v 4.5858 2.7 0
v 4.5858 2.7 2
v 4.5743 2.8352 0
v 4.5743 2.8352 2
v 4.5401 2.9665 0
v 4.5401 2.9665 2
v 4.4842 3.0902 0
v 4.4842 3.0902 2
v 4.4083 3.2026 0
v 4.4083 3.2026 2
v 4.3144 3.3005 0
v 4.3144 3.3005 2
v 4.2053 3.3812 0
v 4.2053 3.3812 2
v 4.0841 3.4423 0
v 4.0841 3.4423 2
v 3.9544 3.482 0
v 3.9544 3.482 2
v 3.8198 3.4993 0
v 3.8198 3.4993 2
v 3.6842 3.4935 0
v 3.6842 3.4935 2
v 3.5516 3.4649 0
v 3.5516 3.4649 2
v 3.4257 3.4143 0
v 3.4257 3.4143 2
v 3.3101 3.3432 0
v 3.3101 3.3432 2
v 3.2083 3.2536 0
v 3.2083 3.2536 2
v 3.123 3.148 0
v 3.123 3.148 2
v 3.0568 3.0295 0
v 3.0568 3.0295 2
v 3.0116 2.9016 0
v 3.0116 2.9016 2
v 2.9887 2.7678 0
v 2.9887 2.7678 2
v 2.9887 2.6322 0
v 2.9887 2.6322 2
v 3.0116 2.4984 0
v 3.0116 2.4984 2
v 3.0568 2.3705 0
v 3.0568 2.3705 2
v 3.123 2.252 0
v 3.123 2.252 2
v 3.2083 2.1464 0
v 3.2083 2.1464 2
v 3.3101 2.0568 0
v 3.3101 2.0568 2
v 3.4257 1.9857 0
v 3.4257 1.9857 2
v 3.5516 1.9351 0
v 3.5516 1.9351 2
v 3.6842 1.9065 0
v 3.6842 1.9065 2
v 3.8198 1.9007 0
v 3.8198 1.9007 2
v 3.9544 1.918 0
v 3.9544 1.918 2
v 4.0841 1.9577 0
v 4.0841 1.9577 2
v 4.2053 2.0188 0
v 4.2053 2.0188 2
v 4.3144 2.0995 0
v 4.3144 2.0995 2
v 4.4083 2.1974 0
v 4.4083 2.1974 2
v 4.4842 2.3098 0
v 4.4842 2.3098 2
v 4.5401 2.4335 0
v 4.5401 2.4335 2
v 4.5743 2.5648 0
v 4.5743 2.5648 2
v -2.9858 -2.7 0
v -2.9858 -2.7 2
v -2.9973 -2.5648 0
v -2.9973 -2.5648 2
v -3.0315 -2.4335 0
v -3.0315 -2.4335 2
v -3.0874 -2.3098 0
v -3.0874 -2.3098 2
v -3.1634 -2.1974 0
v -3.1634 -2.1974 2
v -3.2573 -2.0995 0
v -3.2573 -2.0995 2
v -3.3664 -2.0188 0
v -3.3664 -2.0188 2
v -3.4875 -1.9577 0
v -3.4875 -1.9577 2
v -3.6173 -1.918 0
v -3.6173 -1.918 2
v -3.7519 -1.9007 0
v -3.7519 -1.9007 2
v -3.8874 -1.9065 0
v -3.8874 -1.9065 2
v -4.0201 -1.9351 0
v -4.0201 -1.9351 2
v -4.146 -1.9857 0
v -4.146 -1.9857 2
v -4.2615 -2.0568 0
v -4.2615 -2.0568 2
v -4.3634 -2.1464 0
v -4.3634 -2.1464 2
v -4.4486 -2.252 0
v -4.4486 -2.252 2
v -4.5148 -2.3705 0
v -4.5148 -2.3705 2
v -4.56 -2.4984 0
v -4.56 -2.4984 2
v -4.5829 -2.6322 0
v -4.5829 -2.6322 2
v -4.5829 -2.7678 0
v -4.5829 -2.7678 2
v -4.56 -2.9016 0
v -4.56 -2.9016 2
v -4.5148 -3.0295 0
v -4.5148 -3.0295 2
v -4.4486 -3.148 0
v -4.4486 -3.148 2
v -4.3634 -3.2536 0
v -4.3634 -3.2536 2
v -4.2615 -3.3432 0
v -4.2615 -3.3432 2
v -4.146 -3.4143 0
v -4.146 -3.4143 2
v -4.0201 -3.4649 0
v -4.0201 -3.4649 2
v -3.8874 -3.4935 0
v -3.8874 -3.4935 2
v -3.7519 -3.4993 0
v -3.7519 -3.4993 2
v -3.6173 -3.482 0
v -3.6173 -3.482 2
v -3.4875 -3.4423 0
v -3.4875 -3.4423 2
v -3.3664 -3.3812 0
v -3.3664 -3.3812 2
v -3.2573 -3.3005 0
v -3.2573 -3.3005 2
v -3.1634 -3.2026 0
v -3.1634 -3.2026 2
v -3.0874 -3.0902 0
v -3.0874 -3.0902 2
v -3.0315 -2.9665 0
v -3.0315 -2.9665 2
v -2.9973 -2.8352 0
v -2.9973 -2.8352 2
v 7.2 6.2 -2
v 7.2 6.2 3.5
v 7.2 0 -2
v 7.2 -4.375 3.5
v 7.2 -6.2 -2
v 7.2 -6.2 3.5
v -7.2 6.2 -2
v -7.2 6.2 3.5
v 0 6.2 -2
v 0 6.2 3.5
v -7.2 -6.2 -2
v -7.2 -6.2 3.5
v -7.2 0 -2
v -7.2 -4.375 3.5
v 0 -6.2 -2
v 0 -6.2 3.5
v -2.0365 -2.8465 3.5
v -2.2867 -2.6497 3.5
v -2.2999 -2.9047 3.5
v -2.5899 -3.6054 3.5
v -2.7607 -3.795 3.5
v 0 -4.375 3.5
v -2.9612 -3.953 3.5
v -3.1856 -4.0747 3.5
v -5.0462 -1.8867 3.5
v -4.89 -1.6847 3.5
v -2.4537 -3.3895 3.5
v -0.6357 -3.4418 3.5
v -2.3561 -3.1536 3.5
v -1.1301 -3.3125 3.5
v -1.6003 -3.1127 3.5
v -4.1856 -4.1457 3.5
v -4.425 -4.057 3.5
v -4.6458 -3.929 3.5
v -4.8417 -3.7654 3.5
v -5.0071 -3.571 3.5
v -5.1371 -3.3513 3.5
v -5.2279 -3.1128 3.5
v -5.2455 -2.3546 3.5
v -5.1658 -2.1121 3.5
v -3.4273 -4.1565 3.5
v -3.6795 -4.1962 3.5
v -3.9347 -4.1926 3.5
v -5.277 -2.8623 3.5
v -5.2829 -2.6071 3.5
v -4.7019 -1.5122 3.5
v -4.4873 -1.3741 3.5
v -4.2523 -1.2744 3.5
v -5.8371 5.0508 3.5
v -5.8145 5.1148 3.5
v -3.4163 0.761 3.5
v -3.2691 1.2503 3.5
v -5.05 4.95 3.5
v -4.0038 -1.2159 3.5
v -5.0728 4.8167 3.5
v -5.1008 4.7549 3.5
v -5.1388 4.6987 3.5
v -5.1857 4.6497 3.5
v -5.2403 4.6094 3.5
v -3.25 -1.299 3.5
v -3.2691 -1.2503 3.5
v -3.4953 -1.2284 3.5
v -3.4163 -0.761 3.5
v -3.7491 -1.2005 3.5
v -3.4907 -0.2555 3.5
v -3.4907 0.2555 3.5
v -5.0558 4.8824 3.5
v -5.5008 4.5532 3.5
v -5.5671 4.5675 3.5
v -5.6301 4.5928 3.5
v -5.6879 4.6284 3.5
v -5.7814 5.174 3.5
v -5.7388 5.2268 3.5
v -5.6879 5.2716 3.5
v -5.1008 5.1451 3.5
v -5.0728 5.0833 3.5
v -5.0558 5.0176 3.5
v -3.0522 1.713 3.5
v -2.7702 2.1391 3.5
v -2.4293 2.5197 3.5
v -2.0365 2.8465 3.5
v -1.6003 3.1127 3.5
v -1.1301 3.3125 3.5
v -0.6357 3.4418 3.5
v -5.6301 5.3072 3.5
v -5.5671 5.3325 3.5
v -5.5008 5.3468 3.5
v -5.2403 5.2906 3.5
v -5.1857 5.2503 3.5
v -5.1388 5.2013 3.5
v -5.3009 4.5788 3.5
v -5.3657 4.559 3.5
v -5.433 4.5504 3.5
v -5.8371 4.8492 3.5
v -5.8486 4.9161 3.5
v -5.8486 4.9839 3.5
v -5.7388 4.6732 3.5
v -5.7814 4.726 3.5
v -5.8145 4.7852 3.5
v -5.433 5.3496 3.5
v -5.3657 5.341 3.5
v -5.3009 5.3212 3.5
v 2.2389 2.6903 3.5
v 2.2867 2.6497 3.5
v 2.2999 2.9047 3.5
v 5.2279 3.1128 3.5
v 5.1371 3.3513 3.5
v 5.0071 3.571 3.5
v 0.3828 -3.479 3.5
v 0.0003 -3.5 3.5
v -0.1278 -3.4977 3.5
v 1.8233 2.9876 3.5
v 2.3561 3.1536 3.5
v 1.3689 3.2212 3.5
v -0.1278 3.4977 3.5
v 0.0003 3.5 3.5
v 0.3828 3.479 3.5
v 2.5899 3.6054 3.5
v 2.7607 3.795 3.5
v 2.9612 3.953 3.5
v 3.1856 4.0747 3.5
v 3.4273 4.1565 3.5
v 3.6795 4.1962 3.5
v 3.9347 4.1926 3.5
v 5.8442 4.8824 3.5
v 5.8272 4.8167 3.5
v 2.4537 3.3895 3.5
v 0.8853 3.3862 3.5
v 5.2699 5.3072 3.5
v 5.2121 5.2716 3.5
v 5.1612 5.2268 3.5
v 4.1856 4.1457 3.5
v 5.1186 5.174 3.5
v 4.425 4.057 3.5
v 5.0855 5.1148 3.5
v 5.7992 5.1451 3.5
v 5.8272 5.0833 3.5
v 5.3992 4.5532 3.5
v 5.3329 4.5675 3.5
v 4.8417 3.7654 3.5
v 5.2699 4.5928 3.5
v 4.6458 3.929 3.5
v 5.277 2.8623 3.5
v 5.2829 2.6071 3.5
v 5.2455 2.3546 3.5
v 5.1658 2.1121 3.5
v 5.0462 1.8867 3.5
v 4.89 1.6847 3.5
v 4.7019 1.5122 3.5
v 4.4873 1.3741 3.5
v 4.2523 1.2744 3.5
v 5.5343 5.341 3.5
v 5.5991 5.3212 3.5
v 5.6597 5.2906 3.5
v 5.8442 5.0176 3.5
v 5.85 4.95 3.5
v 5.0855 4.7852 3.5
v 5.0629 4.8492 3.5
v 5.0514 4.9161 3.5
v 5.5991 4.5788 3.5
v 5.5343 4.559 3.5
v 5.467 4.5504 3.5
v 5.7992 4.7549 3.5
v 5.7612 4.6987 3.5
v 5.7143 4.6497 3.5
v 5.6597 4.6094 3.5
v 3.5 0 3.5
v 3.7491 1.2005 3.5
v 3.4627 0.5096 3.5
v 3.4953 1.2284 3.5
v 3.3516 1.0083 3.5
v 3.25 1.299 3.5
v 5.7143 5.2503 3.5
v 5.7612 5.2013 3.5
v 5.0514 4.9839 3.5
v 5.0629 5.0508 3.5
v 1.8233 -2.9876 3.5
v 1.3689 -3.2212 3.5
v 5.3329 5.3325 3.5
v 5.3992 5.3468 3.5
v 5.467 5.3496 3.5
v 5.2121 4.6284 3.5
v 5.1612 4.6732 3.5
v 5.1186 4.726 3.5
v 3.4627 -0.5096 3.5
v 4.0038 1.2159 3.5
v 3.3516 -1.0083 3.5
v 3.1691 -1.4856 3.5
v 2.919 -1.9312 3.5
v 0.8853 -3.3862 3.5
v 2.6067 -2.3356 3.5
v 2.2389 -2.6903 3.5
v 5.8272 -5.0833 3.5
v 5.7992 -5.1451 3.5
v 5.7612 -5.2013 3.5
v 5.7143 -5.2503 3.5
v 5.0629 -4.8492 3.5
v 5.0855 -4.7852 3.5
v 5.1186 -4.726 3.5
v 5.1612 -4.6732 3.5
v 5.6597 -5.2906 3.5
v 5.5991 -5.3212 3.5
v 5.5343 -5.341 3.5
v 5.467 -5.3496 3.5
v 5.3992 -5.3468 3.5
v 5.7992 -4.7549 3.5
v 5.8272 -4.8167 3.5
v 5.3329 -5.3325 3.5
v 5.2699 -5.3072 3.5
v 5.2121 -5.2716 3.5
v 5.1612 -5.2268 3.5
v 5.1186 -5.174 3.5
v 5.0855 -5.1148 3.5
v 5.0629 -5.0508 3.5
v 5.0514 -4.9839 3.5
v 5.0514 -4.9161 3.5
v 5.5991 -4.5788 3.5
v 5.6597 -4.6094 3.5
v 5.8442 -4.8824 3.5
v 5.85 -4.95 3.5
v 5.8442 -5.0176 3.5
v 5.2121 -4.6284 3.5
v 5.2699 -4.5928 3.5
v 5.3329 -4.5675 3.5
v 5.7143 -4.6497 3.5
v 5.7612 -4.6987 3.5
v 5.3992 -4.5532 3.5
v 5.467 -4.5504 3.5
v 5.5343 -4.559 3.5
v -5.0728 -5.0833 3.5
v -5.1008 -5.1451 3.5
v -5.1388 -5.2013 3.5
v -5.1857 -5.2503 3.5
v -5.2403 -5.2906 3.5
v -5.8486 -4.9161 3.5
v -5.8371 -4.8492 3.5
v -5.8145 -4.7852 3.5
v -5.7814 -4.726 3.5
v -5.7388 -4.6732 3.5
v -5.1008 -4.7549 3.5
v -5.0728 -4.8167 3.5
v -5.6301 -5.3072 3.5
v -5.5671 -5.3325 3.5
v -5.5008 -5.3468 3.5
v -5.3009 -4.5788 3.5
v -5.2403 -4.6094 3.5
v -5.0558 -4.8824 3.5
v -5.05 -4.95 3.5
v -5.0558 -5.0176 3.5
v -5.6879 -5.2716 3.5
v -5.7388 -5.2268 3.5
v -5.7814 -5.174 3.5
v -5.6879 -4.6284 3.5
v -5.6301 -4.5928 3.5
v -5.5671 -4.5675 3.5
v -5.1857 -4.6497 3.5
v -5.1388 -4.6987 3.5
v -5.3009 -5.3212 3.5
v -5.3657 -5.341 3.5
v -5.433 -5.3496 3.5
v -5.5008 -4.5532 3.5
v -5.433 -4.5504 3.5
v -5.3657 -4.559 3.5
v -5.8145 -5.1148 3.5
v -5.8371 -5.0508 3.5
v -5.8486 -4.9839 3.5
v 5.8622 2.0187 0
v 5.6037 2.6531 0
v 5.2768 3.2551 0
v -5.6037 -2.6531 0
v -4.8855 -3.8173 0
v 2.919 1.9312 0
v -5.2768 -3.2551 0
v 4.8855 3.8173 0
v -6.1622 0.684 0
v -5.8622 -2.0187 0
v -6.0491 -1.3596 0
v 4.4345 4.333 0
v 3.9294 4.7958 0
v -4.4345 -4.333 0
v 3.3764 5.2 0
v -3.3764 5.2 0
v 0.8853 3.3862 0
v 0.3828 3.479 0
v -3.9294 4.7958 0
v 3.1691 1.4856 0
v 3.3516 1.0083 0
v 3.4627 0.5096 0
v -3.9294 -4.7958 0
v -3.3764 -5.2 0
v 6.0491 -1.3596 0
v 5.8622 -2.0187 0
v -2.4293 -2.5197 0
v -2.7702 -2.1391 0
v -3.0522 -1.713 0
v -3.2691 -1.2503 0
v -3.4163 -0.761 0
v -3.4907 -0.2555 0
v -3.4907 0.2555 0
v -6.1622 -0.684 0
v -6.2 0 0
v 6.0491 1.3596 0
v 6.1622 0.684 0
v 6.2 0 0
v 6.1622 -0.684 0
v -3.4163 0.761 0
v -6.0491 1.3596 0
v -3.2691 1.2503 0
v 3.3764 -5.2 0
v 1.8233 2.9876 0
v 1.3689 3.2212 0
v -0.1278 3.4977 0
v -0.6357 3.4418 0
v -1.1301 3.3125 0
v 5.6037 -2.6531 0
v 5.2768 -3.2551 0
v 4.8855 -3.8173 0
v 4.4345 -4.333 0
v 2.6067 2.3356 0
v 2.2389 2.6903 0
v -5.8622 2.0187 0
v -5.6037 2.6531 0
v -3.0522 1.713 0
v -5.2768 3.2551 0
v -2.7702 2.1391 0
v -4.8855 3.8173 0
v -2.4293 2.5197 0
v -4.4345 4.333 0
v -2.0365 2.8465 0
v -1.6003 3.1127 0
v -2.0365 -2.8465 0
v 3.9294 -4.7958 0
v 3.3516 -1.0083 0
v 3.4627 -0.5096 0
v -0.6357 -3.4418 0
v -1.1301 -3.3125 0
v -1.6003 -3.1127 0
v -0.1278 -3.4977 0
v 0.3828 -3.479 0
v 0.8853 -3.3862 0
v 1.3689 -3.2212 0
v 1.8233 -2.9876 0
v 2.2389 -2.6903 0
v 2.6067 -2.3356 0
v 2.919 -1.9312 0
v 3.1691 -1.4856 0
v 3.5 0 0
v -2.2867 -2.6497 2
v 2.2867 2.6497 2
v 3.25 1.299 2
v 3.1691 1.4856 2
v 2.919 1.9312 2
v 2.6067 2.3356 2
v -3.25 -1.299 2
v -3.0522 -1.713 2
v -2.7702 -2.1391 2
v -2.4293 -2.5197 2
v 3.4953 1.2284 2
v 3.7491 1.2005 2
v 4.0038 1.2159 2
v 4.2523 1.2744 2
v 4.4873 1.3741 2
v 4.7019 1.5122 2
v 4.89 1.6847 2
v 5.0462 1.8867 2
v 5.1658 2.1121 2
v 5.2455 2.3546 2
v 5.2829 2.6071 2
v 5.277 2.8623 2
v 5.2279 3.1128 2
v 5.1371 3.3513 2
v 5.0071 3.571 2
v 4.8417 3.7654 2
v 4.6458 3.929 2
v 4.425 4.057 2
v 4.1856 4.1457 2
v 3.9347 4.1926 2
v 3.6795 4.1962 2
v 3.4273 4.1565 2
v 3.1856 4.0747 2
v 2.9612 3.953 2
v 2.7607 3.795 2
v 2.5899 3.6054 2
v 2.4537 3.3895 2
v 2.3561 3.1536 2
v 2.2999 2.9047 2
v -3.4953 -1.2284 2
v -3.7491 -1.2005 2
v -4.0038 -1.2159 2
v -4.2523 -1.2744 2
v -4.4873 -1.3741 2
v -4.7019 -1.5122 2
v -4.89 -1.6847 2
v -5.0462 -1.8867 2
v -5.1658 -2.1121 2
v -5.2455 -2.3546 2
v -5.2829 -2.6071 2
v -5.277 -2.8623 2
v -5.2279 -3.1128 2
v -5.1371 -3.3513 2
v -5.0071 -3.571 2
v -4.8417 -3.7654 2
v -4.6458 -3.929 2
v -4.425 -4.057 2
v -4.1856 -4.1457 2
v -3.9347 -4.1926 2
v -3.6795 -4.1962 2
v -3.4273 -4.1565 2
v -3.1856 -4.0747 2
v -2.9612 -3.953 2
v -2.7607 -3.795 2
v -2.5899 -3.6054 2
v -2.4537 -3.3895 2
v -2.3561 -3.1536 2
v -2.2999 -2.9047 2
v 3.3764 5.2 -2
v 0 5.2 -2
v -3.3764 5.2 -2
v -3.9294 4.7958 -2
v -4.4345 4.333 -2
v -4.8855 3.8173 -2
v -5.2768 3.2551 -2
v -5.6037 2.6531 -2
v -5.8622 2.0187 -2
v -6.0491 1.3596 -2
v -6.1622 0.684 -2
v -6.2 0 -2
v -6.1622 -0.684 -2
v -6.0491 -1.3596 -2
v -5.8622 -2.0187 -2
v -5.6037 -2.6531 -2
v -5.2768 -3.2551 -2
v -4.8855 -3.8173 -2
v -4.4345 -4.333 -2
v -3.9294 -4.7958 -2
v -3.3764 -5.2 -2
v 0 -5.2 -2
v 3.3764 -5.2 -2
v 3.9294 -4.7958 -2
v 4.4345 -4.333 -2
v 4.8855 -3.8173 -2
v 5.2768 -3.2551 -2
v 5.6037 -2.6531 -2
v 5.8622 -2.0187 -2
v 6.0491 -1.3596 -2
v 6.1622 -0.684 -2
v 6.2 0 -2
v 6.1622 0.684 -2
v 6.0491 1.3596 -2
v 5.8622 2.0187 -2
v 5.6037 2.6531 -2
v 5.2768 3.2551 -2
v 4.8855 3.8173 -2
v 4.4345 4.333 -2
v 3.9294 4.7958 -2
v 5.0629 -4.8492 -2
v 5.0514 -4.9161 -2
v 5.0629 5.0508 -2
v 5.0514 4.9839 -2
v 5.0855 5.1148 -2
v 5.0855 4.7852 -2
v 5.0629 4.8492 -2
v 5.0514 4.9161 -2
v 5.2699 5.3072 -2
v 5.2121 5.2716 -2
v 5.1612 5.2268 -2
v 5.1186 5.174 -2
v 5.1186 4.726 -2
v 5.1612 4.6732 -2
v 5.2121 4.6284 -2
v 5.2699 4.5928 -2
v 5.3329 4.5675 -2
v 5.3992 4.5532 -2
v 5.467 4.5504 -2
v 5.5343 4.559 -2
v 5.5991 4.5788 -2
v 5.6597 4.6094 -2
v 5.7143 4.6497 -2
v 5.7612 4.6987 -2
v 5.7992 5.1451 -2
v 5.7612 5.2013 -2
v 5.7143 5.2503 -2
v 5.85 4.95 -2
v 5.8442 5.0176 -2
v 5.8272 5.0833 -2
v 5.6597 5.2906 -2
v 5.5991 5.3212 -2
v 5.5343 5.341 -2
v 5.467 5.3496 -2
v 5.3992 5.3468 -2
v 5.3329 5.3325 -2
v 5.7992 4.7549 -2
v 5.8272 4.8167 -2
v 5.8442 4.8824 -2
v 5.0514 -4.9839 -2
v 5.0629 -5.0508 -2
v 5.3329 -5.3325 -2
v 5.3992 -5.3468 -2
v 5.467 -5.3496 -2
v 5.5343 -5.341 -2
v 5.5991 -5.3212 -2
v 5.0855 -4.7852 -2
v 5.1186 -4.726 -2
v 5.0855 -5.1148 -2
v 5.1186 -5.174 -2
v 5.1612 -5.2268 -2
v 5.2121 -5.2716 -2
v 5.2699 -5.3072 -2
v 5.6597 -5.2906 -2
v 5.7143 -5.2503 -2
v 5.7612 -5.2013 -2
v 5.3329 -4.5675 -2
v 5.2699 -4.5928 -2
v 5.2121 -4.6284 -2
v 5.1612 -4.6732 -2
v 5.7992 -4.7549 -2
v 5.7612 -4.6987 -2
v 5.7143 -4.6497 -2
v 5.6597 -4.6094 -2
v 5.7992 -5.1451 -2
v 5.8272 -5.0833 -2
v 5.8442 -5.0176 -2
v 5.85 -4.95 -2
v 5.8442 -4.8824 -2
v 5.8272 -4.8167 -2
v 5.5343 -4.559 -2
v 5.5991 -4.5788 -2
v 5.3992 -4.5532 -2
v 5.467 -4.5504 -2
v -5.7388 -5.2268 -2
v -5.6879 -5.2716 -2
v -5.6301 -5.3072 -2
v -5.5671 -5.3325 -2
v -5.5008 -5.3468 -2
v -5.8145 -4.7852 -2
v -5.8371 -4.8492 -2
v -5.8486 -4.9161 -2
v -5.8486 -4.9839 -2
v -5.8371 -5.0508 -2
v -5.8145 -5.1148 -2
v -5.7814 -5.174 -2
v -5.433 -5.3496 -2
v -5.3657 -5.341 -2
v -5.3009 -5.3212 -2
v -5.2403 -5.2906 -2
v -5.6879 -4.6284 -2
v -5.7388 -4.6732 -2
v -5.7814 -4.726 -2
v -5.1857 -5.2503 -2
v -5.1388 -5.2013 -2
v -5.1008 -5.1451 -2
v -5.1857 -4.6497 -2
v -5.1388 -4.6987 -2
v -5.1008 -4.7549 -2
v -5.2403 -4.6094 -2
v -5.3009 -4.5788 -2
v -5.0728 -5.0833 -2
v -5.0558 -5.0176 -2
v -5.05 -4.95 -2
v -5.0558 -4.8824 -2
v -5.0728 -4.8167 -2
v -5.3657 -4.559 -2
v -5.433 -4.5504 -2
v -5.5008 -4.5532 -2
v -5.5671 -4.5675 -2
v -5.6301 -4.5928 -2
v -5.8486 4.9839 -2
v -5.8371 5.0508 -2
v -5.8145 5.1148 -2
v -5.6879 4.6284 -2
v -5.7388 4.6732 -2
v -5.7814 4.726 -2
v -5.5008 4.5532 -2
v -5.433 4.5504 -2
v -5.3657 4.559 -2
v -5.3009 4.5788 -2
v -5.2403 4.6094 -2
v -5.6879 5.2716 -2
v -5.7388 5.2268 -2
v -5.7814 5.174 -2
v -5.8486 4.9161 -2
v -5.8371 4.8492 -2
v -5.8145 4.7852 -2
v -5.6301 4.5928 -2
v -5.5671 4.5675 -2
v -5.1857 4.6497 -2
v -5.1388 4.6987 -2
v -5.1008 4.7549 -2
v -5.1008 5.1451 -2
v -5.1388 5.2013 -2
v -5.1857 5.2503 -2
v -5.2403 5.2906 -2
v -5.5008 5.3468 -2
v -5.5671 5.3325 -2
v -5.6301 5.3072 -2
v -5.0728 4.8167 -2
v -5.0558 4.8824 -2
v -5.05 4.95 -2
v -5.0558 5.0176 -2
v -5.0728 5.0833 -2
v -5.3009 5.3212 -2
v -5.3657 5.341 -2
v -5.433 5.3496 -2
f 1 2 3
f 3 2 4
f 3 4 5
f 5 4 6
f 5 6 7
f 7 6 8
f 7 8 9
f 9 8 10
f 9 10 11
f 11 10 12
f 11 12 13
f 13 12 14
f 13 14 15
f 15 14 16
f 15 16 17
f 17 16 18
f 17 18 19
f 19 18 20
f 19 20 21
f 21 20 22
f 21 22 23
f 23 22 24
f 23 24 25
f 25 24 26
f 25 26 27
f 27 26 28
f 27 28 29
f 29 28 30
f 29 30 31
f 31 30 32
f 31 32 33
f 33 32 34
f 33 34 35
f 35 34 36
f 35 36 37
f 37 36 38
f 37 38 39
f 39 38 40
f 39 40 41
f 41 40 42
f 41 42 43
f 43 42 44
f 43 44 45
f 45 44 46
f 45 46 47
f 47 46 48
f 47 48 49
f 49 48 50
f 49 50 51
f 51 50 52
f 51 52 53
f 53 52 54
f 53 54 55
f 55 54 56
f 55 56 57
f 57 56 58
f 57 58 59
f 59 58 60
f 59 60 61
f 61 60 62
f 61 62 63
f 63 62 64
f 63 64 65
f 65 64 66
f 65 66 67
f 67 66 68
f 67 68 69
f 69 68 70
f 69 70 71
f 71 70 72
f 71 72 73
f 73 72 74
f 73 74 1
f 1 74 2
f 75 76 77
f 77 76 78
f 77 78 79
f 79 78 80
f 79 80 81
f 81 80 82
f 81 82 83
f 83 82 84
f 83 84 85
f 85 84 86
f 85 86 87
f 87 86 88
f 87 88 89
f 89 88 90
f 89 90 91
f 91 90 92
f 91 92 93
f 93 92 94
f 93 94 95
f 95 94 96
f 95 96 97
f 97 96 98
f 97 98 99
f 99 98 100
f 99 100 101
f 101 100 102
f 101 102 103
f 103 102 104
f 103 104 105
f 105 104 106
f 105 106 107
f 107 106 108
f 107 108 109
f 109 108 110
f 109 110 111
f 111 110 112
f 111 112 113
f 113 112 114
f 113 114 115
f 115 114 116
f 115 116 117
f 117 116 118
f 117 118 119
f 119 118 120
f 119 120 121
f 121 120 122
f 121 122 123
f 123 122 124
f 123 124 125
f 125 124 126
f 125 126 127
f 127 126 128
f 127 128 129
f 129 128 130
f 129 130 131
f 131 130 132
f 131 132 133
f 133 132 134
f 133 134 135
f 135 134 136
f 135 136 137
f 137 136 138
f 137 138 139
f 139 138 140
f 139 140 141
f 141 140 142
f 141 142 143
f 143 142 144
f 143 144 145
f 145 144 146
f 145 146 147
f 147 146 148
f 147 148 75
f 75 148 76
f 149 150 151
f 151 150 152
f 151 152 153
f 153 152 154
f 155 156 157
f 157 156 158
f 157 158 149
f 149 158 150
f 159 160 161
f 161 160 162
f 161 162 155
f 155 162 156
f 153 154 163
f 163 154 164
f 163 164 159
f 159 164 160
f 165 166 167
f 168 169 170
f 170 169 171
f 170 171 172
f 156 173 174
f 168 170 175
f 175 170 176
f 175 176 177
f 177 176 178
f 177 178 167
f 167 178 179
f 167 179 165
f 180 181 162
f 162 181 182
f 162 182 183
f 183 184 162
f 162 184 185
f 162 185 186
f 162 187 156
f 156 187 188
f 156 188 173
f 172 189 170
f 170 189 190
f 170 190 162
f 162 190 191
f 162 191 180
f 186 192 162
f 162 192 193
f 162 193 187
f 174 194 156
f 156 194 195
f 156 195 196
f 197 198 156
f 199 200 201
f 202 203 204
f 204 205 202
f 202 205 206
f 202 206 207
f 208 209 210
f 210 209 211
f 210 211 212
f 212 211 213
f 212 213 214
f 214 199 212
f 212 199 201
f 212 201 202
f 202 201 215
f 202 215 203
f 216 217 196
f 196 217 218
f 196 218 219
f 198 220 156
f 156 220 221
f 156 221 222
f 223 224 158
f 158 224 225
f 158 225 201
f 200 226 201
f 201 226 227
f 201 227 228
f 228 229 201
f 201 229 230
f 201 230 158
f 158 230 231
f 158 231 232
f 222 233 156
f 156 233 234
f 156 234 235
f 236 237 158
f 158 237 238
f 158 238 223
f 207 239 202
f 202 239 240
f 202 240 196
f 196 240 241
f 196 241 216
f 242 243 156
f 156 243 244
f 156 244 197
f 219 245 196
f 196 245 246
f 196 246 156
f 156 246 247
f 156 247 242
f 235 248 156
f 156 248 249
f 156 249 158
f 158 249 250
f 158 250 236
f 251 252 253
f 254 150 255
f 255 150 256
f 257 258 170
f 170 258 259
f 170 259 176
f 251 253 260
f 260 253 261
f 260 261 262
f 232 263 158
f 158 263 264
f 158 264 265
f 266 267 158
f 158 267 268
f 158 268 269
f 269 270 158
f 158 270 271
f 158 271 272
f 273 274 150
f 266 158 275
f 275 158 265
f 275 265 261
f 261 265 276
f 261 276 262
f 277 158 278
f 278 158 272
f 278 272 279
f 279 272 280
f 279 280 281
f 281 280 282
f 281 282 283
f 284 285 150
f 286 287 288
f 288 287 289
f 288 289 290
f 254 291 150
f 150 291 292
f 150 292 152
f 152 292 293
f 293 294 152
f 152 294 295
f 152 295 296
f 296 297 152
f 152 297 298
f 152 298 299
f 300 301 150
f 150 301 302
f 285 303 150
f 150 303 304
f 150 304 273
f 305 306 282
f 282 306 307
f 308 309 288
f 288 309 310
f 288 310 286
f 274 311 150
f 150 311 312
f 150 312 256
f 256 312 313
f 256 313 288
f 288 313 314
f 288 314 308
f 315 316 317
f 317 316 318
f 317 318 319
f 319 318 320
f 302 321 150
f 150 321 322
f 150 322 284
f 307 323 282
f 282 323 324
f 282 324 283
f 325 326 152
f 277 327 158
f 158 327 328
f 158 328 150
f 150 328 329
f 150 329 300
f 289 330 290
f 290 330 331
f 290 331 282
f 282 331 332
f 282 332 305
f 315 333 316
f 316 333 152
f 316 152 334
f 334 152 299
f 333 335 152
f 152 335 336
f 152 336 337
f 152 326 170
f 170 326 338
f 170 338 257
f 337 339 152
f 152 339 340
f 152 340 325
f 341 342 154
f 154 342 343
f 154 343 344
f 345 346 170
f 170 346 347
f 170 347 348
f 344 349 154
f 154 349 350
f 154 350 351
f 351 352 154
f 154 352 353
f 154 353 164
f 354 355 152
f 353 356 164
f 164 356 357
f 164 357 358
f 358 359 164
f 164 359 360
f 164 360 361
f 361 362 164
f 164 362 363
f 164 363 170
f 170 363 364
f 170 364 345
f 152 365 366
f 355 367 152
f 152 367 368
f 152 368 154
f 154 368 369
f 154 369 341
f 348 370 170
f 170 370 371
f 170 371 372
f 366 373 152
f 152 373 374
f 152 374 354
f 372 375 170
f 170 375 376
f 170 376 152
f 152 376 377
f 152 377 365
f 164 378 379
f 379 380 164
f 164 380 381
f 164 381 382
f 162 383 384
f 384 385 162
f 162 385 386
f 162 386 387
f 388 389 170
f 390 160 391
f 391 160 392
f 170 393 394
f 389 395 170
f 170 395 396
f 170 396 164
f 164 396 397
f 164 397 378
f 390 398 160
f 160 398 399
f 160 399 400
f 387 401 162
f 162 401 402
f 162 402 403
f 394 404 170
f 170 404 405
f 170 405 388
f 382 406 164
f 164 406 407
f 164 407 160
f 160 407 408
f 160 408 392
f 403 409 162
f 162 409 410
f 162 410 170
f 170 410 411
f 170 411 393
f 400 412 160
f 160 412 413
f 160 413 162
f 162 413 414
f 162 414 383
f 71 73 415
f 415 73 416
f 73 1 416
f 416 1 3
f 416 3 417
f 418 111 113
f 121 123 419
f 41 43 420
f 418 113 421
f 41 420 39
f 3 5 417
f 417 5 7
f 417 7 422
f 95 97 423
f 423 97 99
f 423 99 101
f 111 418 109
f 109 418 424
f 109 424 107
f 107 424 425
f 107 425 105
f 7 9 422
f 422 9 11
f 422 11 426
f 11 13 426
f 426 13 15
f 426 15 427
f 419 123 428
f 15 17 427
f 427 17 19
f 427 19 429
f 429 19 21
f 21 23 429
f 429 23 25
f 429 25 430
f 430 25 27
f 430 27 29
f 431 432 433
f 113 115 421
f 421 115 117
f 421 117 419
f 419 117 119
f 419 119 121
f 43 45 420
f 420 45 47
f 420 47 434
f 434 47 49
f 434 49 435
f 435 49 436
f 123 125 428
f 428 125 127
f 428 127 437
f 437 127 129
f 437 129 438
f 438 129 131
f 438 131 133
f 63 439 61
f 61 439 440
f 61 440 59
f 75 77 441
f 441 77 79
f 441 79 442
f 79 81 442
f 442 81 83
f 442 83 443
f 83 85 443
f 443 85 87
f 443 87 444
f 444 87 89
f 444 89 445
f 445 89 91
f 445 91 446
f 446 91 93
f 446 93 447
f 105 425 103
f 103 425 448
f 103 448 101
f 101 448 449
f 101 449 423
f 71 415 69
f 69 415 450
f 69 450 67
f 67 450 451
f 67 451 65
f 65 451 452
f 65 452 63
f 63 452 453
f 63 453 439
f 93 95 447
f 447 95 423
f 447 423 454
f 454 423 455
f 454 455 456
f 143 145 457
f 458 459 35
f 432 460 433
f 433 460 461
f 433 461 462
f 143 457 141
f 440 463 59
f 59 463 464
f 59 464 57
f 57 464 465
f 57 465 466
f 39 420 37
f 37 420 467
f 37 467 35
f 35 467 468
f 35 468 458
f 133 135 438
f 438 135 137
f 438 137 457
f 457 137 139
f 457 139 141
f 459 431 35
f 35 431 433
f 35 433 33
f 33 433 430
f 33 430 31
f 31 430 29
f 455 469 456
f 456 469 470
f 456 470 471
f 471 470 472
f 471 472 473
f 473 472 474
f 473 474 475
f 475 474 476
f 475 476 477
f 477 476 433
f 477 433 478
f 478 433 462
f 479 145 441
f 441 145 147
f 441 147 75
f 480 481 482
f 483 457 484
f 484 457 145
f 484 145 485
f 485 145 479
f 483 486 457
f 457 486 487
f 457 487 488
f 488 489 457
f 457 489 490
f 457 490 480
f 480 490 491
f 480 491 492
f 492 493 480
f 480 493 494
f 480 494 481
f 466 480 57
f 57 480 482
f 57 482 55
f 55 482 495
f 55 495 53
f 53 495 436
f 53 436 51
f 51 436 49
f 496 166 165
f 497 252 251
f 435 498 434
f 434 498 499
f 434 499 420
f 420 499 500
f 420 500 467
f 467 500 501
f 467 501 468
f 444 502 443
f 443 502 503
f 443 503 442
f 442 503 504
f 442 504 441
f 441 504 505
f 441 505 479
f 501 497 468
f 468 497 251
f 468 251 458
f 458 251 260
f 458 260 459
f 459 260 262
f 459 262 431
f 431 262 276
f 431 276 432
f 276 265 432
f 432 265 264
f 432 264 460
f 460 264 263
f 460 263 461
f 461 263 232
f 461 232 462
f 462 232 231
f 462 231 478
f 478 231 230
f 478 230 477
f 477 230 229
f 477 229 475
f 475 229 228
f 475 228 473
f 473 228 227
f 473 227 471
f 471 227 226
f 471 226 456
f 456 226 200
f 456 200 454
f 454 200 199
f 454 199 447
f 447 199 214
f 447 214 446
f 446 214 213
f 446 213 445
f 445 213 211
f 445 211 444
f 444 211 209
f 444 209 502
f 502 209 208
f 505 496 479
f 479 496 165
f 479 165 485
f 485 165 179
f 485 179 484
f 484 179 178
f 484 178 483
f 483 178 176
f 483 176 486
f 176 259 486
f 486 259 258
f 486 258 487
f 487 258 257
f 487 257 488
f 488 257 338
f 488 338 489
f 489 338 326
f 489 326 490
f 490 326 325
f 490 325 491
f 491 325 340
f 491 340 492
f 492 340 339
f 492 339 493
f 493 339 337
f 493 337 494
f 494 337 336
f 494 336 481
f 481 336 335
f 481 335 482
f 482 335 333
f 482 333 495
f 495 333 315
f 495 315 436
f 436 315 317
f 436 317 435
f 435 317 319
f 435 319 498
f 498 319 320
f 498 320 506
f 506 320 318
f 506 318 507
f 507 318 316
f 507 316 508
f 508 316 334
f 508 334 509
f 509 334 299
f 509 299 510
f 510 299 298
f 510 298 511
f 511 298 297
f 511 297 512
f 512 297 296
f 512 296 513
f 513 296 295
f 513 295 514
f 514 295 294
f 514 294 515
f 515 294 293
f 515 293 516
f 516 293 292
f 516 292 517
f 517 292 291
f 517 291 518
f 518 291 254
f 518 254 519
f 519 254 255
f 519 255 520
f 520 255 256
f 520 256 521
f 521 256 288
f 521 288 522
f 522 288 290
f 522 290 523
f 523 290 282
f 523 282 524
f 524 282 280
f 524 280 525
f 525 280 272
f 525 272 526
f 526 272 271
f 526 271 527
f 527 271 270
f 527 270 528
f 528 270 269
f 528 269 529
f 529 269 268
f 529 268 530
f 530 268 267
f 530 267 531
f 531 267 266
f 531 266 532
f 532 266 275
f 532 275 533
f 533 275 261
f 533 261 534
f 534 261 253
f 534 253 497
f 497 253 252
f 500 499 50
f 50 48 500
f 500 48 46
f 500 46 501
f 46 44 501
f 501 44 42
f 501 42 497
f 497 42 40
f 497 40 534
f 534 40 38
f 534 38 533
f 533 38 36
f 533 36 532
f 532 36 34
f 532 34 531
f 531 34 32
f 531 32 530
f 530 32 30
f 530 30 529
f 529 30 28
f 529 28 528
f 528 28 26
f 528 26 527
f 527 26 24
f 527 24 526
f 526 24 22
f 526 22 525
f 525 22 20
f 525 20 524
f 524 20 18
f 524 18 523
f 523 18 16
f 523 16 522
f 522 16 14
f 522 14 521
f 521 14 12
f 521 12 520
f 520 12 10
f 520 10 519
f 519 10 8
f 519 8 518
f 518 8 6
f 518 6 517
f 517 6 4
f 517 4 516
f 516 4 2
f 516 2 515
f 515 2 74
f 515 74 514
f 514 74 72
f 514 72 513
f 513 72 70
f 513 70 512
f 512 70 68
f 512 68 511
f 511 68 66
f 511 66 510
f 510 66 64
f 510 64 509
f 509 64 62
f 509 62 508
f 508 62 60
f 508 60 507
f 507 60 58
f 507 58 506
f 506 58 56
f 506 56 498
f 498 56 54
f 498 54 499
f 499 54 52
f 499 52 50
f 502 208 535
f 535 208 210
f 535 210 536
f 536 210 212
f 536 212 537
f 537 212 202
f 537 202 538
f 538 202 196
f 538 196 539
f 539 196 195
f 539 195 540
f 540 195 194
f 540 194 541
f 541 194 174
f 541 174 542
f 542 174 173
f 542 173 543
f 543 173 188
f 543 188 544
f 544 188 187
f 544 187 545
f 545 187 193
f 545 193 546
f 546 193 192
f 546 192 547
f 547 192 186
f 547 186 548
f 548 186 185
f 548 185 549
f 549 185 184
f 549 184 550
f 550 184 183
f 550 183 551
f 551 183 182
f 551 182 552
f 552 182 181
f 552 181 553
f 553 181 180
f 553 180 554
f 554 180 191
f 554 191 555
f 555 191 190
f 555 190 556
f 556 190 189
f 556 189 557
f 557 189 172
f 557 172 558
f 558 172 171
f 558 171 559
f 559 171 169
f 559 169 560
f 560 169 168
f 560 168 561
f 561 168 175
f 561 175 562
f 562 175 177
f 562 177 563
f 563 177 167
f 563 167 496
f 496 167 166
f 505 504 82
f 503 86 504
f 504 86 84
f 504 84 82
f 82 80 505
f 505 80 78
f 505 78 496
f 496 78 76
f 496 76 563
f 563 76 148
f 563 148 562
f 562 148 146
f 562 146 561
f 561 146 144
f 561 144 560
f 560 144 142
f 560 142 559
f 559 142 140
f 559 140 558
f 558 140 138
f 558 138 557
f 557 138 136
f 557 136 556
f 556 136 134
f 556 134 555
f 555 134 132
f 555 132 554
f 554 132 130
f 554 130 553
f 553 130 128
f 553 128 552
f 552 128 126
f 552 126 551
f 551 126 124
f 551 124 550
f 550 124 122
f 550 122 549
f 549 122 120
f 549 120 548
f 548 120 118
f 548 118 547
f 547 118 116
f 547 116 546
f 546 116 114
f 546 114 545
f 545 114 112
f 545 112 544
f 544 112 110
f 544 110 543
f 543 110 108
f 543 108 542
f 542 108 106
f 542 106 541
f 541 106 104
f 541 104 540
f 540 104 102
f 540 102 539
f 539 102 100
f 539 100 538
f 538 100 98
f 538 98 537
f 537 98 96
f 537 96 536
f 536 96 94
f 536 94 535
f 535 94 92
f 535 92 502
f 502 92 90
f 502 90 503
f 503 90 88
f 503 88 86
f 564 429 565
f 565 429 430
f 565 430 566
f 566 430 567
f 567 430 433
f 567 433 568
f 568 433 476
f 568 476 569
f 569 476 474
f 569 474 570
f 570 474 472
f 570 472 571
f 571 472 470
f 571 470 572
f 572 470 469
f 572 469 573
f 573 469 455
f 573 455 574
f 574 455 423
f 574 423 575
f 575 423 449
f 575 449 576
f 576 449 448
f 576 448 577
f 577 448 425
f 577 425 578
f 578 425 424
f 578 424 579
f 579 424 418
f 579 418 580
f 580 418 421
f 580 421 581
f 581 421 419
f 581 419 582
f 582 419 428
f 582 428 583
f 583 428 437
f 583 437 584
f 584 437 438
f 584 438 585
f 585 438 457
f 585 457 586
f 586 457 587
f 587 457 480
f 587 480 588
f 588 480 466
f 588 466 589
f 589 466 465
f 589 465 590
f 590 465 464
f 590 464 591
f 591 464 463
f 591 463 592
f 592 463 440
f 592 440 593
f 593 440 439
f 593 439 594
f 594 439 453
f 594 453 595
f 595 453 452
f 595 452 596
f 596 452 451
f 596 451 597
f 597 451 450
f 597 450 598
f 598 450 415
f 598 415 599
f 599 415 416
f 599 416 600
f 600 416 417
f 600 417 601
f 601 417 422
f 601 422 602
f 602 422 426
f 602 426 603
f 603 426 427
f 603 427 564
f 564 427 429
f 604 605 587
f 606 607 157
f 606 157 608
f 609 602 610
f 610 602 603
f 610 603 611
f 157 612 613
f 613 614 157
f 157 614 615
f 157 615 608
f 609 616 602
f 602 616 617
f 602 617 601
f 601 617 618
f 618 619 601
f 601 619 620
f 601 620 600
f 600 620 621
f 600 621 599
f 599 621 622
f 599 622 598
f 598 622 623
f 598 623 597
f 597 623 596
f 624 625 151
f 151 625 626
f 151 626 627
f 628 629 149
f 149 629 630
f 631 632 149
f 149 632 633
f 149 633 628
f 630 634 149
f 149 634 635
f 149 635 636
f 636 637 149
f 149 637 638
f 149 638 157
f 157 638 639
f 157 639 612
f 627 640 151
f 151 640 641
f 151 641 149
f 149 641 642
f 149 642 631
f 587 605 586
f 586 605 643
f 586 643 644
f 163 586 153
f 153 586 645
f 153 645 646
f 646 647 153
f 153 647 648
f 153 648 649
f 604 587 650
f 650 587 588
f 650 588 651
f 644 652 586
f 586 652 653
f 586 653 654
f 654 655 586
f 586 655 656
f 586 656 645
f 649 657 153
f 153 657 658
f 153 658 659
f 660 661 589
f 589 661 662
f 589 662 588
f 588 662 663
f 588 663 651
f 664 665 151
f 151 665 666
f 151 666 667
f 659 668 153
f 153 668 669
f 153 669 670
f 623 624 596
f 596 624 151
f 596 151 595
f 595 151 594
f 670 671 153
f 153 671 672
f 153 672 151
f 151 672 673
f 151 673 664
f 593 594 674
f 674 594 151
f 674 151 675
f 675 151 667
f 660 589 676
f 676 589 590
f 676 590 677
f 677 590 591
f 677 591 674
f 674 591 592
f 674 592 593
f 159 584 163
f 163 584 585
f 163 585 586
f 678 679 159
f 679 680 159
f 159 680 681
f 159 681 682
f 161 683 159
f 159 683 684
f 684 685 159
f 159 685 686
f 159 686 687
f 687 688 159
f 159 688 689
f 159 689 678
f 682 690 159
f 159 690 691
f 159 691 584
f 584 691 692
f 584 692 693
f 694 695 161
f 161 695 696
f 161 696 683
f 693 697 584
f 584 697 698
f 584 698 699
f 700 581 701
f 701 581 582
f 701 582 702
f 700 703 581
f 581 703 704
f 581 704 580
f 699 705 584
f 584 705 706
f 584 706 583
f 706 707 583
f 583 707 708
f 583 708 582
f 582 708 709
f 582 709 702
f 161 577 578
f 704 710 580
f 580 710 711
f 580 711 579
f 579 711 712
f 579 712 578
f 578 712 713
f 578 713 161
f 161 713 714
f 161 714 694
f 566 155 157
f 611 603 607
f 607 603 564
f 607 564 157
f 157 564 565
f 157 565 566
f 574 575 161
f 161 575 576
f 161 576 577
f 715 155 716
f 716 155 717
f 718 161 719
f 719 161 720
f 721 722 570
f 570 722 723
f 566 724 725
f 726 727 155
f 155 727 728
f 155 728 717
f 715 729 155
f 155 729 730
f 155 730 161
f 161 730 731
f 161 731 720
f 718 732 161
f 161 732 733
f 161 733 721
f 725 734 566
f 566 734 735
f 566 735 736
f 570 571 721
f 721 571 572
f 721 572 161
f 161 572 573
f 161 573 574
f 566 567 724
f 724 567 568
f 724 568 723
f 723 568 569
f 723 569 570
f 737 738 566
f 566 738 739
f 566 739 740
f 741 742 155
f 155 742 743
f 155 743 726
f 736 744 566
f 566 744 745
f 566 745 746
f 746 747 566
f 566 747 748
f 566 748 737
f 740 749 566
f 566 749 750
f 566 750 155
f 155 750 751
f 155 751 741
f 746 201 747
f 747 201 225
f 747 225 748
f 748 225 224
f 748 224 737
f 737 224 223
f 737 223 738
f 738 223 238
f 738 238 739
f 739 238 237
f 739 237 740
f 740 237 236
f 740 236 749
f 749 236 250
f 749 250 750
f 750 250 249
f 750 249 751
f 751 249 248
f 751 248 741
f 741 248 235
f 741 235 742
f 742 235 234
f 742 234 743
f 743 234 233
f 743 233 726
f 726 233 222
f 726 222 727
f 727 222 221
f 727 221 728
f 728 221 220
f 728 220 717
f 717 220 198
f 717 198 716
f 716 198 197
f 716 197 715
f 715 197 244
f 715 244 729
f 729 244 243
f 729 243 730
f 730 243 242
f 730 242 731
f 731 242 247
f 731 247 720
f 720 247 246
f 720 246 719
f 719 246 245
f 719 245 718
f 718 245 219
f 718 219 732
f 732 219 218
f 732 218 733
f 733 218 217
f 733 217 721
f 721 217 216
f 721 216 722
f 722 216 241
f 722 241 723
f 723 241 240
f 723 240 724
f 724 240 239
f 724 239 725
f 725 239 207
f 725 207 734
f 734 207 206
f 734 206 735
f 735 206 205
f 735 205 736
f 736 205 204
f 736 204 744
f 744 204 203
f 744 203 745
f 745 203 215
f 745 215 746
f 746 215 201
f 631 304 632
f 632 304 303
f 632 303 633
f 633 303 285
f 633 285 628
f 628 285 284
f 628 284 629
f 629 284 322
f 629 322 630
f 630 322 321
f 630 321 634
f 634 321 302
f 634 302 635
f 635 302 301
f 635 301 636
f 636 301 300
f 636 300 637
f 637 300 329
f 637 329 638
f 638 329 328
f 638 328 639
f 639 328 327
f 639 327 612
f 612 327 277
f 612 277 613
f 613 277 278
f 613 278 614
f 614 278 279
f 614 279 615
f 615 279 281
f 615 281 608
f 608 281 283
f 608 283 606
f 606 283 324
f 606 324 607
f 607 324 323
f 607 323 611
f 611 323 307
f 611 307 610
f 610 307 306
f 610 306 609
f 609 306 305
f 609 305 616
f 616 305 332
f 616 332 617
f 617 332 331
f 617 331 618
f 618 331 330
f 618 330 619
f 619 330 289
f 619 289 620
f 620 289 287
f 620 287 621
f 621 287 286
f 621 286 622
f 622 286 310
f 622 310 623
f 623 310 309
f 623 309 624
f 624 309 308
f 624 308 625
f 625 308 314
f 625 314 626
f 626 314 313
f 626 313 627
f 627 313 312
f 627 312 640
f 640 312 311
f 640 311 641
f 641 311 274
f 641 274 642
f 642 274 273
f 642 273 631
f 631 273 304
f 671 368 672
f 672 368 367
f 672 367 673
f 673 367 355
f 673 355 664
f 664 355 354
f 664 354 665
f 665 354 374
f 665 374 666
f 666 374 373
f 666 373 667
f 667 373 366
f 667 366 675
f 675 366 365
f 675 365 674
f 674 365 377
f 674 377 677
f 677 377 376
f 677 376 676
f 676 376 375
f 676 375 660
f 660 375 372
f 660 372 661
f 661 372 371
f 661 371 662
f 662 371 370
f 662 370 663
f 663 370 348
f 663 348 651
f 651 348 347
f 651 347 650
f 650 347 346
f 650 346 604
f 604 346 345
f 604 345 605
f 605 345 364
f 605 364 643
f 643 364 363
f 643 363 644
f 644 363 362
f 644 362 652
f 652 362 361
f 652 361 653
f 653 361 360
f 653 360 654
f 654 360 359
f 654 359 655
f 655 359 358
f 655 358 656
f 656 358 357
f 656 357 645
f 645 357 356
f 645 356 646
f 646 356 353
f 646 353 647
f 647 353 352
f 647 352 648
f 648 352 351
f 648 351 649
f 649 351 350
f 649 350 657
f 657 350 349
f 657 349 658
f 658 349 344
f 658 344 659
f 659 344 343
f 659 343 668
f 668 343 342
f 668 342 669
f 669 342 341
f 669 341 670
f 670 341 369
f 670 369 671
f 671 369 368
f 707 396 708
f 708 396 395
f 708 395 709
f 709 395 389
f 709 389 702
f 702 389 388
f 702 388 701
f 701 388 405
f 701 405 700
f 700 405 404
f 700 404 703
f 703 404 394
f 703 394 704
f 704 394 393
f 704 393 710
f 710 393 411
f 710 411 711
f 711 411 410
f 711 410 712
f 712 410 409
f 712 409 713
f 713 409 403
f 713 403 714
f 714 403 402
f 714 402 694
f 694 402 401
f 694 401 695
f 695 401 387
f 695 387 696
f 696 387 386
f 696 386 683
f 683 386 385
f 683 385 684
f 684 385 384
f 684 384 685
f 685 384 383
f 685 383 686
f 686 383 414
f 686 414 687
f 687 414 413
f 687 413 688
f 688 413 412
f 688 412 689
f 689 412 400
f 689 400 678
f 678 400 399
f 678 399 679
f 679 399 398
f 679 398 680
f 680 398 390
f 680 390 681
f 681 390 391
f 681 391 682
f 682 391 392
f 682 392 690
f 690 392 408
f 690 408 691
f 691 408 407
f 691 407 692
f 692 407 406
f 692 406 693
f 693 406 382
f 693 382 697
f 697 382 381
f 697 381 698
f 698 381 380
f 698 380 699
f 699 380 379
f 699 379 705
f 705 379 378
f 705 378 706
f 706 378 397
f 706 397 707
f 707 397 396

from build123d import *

# Parameters (mm, degrees)
SKETCH_1_W          = 14.4
SKETCH_1_H          = 12.4
EXTRUDE_1_DEPTH     = 3.5
SKETCH_3_R          = 0.8
SKETCH_3_R_2        = 3.5
CUT_EXTRUDE_1_DEPTH = 11.125709852
SKETCH_3_3_R        = 1.5
CUT_EXTRUDE_2_DEPTH = 1.5
EXTRUDE_2_DEPTH     = 2
SKETCH_5_R          = 0.4
CUT_EXTRUDE_3_DEPTH = 11.978615578


with BuildPart() as part:
    # 草图1 → 凸台-拉伸1 (new body)
    with BuildSketch(Plane.XY):
        Rectangle(SKETCH_1_W, SKETCH_1_H)
    extrude(amount=EXTRUDE_1_DEPTH)

    # 草图3 → 切除-拉伸1 (cut, through all)
    with BuildSketch(Plane.XY.offset(3.5)):
        with Locations((3.785828839, 2.7)):
            Circle(SKETCH_3_R)
        with Locations((-3.785828839, -2.7)):
            Circle(SKETCH_3_R)
        Circle(SKETCH_3_R_2)
    extrude(amount=-CUT_EXTRUDE_1_DEPTH, mode=Mode.SUBTRACT)

    # 草图3<3> → 切除-拉伸2 (cut)
    with BuildSketch(Plane.XY.offset(3.5)):
        with Locations((3.785828839, 2.7)):
            Circle(SKETCH_3_3_R)
        with Locations((-3.785828839, -2.7)):
            Circle(SKETCH_3_3_R)
    extrude(amount=-CUT_EXTRUDE_2_DEPTH, mode=Mode.SUBTRACT)

    # 草图4 → 凸台-拉伸2 (add)
    with BuildSketch(Plane(origin=(0, 0, 0), x_dir=(-1, 0, 0), z_dir=(0, 0, -1))):
        with BuildLine():
            Line((-6.2, 0), (-6.2, 5.2))
            Line((-6.2, 5.2), (-3.376388603, 5.2))
            ThreePointArc((-3.376388603, 5.2), (-1.760681692, 5.944745577), (-1.3e-08, 6.2))
            Line((-1.3e-08, 6.2), (-7.2, 6.2))
            Line((-7.2, 6.2), (-7.2, -6.2))
            Line((-7.2, -6.2), (0, -6.2))
            ThreePointArc((0, -6.2), (-1.760681686, -5.944745579), (-3.376388603, -5.2))
            Line((-3.376388603, -5.2), (-6.2, -5.2))
            Line((-6.2, -5.2), (-6.2, 0))
        make_face()
        with BuildLine():
            ThreePointArc((-1.3e-08, 6.2), (1.76068168, 5.944745581), (3.376388603, 5.2))
            Line((3.376388603, 5.2), (6.2, 5.2))
            Line((6.2, 5.2), (6.2, 0))
            Line((6.2, 0), (6.2, -5.2))
            Line((6.2, -5.2), (3.376388603, -5.2))
            ThreePointArc((3.376388603, -5.2), (1.760681686, -5.944745579), (0, -6.2))
            Line((0, -6.2), (7.2, -6.2))
            Line((7.2, -6.2), (7.2, 6.2))
            Line((7.2, 6.2), (-1.3e-08, 6.2))
        make_face()
        with BuildLine():
            Line((3.376388603, -5.2), (-3.376388603, -5.2))
            ThreePointArc((-3.376388603, -5.2), (-1.760681686, -5.944745579), (0, -6.2))
            ThreePointArc((0, -6.2), (1.760681686, -5.944745579), (3.376388603, -5.2))
        make_face()
        with BuildLine():
            ThreePointArc((-3.376388603, -5.2), (-5.448559871, -2.958579952), (-6.2, 0))
            Line((-6.2, 0), (-6.2, -5.2))
            Line((-6.2, -5.2), (-3.376388603, -5.2))
        make_face()
        with BuildLine():
            Line((-3.376388603, 5.2), (-6.2, 5.2))
            Line((-6.2, 5.2), (-6.2, 0))
            ThreePointArc((-6.2, 0), (-5.448559871, 2.958579952), (-3.376388603, 5.2))
        make_face()
        with BuildLine():
            ThreePointArc((-1.3e-08, 6.2), (-1.760681692, 5.944745577), (-3.376388603, 5.2))
            Line((-3.376388603, 5.2), (3.376388603, 5.2))
            ThreePointArc((3.376388603, 5.2), (1.76068168, 5.944745581), (-1.3e-08, 6.2))
        make_face()
        with BuildLine():
            Line((6.2, 5.2), (3.376388603, 5.2))
            ThreePointArc((3.376388603, 5.2), (5.448559871, 2.958579952), (6.2, 0))
            Line((6.2, 0), (6.2, 5.2))
        make_face()
        with BuildLine():
            Line((6.2, -5.2), (6.2, 0))
            ThreePointArc((6.2, 0), (5.448559871, -2.958579952), (3.376388603, -5.2))
            Line((3.376388603, -5.2), (6.2, -5.2))
        make_face()
    extrude(amount=EXTRUDE_2_DEPTH)

    # 草图5 → 切除-拉伸3 (cut, through all)
    with BuildSketch(Plane.XY.offset(3.5)):
        with Locations((-5.45, 4.95)):
            Circle(SKETCH_5_R)
        with Locations((5.45, 4.95)):
            Circle(SKETCH_5_R)
        with Locations((5.45, -4.95)):
            Circle(SKETCH_5_R)
        with Locations((-5.45, -4.95)):
            Circle(SKETCH_5_R)
    extrude(amount=-CUT_EXTRUDE_3_DEPTH, mode=Mode.SUBTRACT)


solid = part.part
